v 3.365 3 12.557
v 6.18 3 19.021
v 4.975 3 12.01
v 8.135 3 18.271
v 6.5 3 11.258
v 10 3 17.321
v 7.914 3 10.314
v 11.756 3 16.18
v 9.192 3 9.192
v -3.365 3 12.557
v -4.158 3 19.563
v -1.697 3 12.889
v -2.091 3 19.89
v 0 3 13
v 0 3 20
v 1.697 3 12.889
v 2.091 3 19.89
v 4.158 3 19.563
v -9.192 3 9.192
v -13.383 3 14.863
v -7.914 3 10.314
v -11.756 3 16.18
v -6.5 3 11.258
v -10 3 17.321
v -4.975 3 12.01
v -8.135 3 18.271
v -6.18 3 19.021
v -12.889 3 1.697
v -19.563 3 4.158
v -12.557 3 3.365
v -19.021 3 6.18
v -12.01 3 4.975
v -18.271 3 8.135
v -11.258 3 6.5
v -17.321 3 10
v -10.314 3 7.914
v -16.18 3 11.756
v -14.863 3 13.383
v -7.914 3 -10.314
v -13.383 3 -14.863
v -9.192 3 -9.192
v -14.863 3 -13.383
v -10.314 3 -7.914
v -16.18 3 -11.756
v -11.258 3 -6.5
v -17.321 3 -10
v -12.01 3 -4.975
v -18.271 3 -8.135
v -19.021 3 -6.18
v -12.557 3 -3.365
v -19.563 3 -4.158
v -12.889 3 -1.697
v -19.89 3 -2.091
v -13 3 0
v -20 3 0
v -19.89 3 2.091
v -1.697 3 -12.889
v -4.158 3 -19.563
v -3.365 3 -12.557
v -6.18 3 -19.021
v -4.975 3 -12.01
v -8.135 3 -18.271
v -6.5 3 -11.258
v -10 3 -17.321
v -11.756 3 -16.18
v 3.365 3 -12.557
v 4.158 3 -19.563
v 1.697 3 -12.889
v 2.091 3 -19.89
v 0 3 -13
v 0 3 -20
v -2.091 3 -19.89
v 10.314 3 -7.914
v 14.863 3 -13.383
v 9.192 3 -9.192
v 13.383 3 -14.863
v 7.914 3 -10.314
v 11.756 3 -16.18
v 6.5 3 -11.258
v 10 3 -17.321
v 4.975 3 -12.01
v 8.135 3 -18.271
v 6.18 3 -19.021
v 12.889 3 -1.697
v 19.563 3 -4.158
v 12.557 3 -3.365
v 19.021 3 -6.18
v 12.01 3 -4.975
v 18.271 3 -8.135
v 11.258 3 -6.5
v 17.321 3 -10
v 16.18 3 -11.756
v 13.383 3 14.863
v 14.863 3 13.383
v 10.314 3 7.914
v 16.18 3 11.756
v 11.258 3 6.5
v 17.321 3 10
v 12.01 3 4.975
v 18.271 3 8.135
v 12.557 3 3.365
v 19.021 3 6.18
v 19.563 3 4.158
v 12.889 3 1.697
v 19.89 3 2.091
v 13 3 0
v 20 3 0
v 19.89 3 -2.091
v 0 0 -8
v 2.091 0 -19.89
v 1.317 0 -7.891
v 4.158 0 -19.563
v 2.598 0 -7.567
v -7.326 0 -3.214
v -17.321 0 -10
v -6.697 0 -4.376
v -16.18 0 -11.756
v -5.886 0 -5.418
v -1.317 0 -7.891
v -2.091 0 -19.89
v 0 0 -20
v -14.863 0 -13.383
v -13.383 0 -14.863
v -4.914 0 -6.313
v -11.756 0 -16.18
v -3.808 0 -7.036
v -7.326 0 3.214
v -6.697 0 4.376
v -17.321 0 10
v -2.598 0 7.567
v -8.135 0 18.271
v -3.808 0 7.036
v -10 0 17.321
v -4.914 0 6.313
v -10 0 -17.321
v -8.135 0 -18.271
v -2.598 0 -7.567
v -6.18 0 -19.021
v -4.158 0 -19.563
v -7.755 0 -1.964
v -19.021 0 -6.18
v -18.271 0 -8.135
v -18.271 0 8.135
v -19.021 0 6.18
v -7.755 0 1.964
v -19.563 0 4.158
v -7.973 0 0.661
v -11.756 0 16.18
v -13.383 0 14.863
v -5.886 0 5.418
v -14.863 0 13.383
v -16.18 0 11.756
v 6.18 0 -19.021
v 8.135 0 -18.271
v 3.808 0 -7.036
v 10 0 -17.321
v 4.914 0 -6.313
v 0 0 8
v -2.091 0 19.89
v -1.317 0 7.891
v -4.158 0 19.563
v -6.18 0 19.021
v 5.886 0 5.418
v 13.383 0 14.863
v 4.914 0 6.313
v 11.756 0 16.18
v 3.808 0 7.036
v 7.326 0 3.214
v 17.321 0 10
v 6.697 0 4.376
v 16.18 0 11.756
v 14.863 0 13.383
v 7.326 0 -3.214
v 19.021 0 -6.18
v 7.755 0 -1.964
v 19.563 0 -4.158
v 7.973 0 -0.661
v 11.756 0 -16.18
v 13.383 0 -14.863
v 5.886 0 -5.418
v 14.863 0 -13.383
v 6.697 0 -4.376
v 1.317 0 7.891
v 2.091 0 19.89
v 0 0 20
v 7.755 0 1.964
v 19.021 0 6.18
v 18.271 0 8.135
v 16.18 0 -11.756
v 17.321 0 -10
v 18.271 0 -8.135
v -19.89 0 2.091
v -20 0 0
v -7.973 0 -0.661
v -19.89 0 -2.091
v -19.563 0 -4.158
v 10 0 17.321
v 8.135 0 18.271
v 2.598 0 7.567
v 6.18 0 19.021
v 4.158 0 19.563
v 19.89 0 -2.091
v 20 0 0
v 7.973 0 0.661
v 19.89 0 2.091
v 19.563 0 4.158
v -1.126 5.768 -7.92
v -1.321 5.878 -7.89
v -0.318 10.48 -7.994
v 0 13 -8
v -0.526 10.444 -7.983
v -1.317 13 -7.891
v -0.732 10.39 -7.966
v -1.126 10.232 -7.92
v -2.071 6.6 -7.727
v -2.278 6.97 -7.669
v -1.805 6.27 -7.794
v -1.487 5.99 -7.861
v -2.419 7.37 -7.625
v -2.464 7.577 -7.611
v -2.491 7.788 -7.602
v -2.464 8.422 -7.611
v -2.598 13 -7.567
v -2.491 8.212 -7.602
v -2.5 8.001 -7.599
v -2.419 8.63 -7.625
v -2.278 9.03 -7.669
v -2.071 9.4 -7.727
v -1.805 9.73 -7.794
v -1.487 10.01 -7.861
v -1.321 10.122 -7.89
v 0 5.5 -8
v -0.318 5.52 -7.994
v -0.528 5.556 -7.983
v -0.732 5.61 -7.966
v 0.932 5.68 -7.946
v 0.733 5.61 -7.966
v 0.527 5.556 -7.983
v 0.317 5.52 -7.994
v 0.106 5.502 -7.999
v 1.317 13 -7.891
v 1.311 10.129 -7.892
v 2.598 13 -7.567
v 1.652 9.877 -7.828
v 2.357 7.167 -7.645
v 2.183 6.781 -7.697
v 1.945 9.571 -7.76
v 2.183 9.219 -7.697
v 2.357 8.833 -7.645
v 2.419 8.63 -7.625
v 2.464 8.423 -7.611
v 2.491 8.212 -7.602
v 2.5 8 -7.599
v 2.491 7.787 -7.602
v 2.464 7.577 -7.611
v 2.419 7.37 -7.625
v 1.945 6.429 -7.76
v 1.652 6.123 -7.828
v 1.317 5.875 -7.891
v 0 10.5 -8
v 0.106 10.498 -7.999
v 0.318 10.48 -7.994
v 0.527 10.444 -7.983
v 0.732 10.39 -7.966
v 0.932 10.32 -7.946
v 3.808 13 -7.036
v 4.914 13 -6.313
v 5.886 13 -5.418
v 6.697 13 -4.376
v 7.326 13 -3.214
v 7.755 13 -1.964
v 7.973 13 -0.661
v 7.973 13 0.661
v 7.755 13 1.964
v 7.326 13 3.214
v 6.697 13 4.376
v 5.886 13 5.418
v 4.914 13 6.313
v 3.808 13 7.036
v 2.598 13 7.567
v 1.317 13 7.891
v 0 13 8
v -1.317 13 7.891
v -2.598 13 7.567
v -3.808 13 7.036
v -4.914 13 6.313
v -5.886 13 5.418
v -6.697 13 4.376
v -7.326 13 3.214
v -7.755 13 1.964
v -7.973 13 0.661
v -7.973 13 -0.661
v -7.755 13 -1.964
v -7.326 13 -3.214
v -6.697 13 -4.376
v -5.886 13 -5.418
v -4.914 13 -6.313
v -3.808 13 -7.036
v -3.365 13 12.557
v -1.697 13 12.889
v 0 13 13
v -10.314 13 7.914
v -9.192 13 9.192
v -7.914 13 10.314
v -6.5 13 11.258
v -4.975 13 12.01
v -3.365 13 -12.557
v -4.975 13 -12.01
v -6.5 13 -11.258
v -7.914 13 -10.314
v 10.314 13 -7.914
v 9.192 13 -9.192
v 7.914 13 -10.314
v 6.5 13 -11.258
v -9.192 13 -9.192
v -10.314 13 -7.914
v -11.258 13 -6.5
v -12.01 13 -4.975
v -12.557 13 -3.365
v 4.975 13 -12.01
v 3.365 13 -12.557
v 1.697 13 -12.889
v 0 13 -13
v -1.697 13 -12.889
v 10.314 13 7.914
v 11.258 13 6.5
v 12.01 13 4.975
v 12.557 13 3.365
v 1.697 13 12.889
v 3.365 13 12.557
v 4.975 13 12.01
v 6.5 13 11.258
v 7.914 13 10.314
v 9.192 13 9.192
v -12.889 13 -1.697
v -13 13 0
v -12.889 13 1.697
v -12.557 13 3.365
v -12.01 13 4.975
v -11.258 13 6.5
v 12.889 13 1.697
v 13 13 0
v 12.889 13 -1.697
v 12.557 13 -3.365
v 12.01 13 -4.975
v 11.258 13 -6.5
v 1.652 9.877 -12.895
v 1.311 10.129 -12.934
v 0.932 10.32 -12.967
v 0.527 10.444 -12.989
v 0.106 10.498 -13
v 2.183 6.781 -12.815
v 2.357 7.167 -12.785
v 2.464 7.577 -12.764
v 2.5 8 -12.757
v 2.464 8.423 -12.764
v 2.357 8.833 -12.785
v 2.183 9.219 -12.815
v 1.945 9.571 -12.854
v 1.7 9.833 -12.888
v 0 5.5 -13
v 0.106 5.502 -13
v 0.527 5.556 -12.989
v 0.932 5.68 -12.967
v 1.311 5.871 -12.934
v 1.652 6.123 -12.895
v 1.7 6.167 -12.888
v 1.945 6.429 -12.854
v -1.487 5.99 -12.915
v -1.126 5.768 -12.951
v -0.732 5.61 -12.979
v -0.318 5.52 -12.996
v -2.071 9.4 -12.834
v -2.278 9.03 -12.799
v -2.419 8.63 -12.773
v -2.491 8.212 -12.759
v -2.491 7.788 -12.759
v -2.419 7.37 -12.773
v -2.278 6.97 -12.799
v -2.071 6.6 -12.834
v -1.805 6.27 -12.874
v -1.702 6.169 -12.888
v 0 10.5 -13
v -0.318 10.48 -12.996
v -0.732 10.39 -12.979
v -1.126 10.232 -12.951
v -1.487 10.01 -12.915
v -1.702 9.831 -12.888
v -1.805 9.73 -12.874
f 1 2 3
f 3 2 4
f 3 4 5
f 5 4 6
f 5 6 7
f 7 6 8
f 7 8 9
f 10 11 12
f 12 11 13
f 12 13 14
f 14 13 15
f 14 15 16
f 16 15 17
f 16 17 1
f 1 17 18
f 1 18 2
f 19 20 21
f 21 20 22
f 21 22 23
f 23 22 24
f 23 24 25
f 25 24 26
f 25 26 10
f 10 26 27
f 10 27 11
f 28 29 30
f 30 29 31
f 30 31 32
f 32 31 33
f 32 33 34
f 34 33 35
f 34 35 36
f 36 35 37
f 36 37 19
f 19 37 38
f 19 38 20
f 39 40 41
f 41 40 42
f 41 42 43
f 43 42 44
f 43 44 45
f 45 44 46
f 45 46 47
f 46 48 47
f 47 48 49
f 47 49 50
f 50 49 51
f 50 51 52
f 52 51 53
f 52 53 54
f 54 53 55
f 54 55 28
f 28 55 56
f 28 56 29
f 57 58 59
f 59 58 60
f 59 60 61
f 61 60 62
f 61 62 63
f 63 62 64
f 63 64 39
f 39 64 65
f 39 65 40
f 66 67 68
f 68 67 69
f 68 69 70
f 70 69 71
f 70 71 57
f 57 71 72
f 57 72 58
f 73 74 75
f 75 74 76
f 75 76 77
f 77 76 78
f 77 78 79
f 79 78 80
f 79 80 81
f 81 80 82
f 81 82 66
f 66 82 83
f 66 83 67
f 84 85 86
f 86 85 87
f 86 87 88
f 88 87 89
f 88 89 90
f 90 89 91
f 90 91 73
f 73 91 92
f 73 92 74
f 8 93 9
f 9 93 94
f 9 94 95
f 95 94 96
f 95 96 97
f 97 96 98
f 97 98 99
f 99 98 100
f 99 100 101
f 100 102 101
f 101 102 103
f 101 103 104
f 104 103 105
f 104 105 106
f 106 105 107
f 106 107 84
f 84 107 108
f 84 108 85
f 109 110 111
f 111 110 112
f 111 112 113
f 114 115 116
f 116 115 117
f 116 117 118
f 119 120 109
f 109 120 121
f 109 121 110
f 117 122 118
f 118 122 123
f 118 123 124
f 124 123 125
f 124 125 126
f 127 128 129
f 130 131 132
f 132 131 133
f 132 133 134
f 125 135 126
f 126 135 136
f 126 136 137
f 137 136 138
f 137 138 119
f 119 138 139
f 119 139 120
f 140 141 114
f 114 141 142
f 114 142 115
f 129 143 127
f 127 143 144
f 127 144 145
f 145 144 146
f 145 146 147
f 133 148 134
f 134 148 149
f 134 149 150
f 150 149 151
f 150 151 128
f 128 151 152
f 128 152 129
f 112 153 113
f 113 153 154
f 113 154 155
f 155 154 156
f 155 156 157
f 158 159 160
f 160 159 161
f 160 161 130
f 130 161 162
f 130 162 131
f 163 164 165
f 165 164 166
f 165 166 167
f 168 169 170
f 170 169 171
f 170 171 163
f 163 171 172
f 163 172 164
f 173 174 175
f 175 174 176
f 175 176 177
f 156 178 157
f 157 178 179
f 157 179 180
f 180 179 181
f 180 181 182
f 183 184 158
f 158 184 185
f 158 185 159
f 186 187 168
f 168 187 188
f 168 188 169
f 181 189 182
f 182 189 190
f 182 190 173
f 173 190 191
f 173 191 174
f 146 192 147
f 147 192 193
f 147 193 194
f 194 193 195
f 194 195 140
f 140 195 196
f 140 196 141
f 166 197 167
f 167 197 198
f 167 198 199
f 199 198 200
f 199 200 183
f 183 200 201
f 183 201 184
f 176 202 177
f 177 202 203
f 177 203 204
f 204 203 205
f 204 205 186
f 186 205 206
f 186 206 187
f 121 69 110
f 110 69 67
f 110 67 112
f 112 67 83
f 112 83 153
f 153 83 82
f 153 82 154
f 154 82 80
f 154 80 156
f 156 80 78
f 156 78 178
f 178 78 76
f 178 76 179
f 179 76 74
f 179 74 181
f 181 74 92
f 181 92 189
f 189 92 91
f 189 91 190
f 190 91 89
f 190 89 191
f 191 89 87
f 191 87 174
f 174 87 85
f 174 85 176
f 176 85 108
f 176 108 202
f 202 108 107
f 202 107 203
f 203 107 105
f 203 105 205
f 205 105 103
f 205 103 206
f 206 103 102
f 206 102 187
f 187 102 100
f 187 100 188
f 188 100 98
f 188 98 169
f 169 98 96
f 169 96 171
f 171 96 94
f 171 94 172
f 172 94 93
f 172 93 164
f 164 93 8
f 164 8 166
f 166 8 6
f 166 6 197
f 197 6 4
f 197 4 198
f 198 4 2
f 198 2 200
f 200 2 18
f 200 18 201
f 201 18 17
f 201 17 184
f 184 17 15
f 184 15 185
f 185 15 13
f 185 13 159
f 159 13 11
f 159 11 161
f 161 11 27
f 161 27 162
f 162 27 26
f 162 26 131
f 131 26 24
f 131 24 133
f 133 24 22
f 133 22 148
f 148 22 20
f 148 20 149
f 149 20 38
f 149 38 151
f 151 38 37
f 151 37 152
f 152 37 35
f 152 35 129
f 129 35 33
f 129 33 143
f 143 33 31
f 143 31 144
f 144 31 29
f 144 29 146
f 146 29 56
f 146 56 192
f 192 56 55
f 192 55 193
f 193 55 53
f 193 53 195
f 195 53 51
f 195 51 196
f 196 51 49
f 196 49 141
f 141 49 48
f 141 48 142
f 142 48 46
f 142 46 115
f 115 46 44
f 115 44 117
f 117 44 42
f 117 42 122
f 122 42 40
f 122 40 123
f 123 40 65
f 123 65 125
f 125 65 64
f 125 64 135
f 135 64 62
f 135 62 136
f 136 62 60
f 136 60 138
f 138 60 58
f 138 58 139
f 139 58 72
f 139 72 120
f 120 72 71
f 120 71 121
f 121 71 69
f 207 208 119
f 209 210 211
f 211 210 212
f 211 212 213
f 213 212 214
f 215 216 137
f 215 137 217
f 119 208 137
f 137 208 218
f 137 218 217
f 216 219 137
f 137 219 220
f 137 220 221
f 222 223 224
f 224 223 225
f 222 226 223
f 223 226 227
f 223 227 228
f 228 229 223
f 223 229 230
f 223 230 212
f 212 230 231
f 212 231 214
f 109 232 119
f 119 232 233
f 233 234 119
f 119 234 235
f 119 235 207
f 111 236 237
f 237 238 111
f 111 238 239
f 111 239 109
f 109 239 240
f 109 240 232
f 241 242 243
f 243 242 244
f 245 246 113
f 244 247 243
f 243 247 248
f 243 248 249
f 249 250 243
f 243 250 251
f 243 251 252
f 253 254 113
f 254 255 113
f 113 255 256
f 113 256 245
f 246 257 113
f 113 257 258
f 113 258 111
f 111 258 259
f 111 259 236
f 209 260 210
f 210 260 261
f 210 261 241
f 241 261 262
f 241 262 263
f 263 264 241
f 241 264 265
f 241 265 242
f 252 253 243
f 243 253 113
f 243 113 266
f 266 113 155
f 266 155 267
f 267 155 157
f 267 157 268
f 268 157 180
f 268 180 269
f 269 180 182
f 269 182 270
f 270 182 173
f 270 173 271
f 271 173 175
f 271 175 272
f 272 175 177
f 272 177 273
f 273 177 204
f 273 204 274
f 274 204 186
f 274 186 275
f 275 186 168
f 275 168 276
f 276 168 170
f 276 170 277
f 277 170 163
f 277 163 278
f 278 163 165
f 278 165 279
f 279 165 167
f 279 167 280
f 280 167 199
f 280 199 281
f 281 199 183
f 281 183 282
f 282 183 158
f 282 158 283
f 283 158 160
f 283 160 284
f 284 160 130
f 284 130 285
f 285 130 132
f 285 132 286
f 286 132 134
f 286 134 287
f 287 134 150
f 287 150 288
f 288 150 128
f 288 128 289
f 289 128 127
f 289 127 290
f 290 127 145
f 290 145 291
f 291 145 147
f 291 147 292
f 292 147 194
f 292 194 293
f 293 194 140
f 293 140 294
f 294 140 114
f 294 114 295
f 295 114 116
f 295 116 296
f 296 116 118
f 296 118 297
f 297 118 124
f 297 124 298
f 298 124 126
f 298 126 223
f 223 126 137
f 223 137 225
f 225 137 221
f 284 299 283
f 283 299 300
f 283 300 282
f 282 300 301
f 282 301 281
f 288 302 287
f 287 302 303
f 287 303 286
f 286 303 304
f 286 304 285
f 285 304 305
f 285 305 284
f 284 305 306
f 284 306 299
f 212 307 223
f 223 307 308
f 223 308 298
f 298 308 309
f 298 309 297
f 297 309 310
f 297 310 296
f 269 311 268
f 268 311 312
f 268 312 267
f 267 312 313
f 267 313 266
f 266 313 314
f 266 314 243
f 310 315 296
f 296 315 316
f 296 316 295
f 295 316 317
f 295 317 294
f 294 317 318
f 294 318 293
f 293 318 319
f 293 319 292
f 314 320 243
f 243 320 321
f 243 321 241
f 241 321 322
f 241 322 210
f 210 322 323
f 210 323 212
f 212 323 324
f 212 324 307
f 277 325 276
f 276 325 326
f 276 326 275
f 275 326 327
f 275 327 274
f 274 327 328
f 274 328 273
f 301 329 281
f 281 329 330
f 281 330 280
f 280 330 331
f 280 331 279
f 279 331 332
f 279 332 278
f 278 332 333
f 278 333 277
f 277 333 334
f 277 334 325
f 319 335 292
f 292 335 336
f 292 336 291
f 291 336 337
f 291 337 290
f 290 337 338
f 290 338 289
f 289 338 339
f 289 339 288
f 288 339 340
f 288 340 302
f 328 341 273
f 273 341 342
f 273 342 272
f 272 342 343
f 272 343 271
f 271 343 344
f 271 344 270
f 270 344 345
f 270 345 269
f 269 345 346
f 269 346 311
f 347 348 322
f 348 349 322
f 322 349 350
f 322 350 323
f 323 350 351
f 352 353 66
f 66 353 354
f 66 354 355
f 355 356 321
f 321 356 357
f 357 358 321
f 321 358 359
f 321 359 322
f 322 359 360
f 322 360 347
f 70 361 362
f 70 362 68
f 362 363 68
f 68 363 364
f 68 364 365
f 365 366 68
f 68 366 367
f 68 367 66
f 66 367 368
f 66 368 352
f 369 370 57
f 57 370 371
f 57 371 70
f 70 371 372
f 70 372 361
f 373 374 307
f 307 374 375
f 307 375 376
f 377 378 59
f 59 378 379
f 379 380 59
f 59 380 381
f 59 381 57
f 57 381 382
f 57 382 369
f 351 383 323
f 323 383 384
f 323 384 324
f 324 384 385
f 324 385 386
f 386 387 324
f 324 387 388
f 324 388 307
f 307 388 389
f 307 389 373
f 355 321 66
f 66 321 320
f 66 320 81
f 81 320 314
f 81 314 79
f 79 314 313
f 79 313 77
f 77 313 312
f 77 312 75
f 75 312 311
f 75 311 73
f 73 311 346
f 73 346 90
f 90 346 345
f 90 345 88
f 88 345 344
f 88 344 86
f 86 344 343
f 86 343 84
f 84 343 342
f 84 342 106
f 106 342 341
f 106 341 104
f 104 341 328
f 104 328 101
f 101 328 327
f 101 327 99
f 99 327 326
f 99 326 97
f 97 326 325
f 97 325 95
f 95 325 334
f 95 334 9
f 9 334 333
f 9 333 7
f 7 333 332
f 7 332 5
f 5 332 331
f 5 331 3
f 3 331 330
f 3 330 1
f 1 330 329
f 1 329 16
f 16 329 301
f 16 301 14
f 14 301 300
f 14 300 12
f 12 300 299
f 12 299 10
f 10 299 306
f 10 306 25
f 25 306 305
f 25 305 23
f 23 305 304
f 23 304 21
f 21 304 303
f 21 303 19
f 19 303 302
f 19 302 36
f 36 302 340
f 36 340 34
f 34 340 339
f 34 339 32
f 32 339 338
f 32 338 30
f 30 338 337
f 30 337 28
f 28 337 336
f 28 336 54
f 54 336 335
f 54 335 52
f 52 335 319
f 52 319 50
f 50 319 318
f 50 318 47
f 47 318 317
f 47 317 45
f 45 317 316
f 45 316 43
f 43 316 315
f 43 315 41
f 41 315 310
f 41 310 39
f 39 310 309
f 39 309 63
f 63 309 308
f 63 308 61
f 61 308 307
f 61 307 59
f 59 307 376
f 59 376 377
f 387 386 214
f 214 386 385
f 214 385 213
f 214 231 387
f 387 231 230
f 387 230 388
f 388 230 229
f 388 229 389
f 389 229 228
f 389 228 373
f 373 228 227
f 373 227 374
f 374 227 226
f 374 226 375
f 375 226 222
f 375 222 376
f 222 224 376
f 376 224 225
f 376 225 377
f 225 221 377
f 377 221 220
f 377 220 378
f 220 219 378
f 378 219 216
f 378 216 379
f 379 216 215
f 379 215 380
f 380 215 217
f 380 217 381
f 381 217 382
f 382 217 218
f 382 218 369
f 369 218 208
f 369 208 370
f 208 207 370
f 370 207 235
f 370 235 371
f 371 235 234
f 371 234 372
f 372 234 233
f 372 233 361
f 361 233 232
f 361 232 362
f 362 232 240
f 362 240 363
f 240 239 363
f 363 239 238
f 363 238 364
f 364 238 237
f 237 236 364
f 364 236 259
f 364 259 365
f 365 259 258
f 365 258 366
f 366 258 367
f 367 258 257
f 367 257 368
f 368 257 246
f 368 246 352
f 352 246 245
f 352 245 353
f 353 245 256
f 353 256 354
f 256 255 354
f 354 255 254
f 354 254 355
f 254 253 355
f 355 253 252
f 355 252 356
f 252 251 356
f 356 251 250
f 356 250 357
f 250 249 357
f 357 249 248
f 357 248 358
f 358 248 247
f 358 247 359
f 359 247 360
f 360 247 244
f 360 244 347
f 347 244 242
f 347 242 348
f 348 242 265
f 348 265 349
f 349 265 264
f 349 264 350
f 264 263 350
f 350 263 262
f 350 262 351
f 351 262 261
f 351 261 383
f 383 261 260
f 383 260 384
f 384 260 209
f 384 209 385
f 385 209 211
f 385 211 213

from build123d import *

# Parameters (mm, degrees)
SKETCH1_R           = 20
SKETCH1_R_2         = 8
BOSS_EXTRUDE1_DEPTH = 3
SKETCH2_R           = 13
SKETCH2_R_2         = 8
BOSS_EXTRUDE2_DEPTH = 10
SKETCH3_R           = 2.5
CUT_EXTRUDE1_DEPTH  = 32.128764833


with BuildPart() as part:
    # Sketch1 → Boss-Extrude1 (new body)
    with BuildSketch(Plane(origin=(0, 0, 0), x_dir=(1, 0, 0), z_dir=(0, 1, 0))):
        with Locations(Location((0, 0, 0), (0, 0, 270))):
            Circle(SKETCH1_R)
        with Locations(Location((0, 0, 0), (0, 0, 270))):
            Circle(SKETCH1_R_2, mode=Mode.SUBTRACT)
    extrude(amount=BOSS_EXTRUDE1_DEPTH)

    # Sketch2 → Boss-Extrude2 (add)
    with BuildSketch(Plane(origin=(0, 3, 0), x_dir=(1, 0, 0), z_dir=(0, 1, 0))):
        with Locations(Location((0, 0, 0), (0, 0, 270))):
            Circle(SKETCH2_R)
        with Locations(Location((0, 0, 0), (0, 0, 270))):
            Circle(SKETCH2_R_2, mode=Mode.SUBTRACT)
    extrude(amount=BOSS_EXTRUDE2_DEPTH)

    # Sketch3 → Cut-Extrude1 (cut, through all)
    with BuildSketch(Plane.XY):
        with Locations(Location((0, 8, 0), (0, 0, 90))):
            Circle(SKETCH3_R)
    extrude(amount=-CUT_EXTRUDE1_DEPTH, mode=Mode.SUBTRACT)


solid = part.part
